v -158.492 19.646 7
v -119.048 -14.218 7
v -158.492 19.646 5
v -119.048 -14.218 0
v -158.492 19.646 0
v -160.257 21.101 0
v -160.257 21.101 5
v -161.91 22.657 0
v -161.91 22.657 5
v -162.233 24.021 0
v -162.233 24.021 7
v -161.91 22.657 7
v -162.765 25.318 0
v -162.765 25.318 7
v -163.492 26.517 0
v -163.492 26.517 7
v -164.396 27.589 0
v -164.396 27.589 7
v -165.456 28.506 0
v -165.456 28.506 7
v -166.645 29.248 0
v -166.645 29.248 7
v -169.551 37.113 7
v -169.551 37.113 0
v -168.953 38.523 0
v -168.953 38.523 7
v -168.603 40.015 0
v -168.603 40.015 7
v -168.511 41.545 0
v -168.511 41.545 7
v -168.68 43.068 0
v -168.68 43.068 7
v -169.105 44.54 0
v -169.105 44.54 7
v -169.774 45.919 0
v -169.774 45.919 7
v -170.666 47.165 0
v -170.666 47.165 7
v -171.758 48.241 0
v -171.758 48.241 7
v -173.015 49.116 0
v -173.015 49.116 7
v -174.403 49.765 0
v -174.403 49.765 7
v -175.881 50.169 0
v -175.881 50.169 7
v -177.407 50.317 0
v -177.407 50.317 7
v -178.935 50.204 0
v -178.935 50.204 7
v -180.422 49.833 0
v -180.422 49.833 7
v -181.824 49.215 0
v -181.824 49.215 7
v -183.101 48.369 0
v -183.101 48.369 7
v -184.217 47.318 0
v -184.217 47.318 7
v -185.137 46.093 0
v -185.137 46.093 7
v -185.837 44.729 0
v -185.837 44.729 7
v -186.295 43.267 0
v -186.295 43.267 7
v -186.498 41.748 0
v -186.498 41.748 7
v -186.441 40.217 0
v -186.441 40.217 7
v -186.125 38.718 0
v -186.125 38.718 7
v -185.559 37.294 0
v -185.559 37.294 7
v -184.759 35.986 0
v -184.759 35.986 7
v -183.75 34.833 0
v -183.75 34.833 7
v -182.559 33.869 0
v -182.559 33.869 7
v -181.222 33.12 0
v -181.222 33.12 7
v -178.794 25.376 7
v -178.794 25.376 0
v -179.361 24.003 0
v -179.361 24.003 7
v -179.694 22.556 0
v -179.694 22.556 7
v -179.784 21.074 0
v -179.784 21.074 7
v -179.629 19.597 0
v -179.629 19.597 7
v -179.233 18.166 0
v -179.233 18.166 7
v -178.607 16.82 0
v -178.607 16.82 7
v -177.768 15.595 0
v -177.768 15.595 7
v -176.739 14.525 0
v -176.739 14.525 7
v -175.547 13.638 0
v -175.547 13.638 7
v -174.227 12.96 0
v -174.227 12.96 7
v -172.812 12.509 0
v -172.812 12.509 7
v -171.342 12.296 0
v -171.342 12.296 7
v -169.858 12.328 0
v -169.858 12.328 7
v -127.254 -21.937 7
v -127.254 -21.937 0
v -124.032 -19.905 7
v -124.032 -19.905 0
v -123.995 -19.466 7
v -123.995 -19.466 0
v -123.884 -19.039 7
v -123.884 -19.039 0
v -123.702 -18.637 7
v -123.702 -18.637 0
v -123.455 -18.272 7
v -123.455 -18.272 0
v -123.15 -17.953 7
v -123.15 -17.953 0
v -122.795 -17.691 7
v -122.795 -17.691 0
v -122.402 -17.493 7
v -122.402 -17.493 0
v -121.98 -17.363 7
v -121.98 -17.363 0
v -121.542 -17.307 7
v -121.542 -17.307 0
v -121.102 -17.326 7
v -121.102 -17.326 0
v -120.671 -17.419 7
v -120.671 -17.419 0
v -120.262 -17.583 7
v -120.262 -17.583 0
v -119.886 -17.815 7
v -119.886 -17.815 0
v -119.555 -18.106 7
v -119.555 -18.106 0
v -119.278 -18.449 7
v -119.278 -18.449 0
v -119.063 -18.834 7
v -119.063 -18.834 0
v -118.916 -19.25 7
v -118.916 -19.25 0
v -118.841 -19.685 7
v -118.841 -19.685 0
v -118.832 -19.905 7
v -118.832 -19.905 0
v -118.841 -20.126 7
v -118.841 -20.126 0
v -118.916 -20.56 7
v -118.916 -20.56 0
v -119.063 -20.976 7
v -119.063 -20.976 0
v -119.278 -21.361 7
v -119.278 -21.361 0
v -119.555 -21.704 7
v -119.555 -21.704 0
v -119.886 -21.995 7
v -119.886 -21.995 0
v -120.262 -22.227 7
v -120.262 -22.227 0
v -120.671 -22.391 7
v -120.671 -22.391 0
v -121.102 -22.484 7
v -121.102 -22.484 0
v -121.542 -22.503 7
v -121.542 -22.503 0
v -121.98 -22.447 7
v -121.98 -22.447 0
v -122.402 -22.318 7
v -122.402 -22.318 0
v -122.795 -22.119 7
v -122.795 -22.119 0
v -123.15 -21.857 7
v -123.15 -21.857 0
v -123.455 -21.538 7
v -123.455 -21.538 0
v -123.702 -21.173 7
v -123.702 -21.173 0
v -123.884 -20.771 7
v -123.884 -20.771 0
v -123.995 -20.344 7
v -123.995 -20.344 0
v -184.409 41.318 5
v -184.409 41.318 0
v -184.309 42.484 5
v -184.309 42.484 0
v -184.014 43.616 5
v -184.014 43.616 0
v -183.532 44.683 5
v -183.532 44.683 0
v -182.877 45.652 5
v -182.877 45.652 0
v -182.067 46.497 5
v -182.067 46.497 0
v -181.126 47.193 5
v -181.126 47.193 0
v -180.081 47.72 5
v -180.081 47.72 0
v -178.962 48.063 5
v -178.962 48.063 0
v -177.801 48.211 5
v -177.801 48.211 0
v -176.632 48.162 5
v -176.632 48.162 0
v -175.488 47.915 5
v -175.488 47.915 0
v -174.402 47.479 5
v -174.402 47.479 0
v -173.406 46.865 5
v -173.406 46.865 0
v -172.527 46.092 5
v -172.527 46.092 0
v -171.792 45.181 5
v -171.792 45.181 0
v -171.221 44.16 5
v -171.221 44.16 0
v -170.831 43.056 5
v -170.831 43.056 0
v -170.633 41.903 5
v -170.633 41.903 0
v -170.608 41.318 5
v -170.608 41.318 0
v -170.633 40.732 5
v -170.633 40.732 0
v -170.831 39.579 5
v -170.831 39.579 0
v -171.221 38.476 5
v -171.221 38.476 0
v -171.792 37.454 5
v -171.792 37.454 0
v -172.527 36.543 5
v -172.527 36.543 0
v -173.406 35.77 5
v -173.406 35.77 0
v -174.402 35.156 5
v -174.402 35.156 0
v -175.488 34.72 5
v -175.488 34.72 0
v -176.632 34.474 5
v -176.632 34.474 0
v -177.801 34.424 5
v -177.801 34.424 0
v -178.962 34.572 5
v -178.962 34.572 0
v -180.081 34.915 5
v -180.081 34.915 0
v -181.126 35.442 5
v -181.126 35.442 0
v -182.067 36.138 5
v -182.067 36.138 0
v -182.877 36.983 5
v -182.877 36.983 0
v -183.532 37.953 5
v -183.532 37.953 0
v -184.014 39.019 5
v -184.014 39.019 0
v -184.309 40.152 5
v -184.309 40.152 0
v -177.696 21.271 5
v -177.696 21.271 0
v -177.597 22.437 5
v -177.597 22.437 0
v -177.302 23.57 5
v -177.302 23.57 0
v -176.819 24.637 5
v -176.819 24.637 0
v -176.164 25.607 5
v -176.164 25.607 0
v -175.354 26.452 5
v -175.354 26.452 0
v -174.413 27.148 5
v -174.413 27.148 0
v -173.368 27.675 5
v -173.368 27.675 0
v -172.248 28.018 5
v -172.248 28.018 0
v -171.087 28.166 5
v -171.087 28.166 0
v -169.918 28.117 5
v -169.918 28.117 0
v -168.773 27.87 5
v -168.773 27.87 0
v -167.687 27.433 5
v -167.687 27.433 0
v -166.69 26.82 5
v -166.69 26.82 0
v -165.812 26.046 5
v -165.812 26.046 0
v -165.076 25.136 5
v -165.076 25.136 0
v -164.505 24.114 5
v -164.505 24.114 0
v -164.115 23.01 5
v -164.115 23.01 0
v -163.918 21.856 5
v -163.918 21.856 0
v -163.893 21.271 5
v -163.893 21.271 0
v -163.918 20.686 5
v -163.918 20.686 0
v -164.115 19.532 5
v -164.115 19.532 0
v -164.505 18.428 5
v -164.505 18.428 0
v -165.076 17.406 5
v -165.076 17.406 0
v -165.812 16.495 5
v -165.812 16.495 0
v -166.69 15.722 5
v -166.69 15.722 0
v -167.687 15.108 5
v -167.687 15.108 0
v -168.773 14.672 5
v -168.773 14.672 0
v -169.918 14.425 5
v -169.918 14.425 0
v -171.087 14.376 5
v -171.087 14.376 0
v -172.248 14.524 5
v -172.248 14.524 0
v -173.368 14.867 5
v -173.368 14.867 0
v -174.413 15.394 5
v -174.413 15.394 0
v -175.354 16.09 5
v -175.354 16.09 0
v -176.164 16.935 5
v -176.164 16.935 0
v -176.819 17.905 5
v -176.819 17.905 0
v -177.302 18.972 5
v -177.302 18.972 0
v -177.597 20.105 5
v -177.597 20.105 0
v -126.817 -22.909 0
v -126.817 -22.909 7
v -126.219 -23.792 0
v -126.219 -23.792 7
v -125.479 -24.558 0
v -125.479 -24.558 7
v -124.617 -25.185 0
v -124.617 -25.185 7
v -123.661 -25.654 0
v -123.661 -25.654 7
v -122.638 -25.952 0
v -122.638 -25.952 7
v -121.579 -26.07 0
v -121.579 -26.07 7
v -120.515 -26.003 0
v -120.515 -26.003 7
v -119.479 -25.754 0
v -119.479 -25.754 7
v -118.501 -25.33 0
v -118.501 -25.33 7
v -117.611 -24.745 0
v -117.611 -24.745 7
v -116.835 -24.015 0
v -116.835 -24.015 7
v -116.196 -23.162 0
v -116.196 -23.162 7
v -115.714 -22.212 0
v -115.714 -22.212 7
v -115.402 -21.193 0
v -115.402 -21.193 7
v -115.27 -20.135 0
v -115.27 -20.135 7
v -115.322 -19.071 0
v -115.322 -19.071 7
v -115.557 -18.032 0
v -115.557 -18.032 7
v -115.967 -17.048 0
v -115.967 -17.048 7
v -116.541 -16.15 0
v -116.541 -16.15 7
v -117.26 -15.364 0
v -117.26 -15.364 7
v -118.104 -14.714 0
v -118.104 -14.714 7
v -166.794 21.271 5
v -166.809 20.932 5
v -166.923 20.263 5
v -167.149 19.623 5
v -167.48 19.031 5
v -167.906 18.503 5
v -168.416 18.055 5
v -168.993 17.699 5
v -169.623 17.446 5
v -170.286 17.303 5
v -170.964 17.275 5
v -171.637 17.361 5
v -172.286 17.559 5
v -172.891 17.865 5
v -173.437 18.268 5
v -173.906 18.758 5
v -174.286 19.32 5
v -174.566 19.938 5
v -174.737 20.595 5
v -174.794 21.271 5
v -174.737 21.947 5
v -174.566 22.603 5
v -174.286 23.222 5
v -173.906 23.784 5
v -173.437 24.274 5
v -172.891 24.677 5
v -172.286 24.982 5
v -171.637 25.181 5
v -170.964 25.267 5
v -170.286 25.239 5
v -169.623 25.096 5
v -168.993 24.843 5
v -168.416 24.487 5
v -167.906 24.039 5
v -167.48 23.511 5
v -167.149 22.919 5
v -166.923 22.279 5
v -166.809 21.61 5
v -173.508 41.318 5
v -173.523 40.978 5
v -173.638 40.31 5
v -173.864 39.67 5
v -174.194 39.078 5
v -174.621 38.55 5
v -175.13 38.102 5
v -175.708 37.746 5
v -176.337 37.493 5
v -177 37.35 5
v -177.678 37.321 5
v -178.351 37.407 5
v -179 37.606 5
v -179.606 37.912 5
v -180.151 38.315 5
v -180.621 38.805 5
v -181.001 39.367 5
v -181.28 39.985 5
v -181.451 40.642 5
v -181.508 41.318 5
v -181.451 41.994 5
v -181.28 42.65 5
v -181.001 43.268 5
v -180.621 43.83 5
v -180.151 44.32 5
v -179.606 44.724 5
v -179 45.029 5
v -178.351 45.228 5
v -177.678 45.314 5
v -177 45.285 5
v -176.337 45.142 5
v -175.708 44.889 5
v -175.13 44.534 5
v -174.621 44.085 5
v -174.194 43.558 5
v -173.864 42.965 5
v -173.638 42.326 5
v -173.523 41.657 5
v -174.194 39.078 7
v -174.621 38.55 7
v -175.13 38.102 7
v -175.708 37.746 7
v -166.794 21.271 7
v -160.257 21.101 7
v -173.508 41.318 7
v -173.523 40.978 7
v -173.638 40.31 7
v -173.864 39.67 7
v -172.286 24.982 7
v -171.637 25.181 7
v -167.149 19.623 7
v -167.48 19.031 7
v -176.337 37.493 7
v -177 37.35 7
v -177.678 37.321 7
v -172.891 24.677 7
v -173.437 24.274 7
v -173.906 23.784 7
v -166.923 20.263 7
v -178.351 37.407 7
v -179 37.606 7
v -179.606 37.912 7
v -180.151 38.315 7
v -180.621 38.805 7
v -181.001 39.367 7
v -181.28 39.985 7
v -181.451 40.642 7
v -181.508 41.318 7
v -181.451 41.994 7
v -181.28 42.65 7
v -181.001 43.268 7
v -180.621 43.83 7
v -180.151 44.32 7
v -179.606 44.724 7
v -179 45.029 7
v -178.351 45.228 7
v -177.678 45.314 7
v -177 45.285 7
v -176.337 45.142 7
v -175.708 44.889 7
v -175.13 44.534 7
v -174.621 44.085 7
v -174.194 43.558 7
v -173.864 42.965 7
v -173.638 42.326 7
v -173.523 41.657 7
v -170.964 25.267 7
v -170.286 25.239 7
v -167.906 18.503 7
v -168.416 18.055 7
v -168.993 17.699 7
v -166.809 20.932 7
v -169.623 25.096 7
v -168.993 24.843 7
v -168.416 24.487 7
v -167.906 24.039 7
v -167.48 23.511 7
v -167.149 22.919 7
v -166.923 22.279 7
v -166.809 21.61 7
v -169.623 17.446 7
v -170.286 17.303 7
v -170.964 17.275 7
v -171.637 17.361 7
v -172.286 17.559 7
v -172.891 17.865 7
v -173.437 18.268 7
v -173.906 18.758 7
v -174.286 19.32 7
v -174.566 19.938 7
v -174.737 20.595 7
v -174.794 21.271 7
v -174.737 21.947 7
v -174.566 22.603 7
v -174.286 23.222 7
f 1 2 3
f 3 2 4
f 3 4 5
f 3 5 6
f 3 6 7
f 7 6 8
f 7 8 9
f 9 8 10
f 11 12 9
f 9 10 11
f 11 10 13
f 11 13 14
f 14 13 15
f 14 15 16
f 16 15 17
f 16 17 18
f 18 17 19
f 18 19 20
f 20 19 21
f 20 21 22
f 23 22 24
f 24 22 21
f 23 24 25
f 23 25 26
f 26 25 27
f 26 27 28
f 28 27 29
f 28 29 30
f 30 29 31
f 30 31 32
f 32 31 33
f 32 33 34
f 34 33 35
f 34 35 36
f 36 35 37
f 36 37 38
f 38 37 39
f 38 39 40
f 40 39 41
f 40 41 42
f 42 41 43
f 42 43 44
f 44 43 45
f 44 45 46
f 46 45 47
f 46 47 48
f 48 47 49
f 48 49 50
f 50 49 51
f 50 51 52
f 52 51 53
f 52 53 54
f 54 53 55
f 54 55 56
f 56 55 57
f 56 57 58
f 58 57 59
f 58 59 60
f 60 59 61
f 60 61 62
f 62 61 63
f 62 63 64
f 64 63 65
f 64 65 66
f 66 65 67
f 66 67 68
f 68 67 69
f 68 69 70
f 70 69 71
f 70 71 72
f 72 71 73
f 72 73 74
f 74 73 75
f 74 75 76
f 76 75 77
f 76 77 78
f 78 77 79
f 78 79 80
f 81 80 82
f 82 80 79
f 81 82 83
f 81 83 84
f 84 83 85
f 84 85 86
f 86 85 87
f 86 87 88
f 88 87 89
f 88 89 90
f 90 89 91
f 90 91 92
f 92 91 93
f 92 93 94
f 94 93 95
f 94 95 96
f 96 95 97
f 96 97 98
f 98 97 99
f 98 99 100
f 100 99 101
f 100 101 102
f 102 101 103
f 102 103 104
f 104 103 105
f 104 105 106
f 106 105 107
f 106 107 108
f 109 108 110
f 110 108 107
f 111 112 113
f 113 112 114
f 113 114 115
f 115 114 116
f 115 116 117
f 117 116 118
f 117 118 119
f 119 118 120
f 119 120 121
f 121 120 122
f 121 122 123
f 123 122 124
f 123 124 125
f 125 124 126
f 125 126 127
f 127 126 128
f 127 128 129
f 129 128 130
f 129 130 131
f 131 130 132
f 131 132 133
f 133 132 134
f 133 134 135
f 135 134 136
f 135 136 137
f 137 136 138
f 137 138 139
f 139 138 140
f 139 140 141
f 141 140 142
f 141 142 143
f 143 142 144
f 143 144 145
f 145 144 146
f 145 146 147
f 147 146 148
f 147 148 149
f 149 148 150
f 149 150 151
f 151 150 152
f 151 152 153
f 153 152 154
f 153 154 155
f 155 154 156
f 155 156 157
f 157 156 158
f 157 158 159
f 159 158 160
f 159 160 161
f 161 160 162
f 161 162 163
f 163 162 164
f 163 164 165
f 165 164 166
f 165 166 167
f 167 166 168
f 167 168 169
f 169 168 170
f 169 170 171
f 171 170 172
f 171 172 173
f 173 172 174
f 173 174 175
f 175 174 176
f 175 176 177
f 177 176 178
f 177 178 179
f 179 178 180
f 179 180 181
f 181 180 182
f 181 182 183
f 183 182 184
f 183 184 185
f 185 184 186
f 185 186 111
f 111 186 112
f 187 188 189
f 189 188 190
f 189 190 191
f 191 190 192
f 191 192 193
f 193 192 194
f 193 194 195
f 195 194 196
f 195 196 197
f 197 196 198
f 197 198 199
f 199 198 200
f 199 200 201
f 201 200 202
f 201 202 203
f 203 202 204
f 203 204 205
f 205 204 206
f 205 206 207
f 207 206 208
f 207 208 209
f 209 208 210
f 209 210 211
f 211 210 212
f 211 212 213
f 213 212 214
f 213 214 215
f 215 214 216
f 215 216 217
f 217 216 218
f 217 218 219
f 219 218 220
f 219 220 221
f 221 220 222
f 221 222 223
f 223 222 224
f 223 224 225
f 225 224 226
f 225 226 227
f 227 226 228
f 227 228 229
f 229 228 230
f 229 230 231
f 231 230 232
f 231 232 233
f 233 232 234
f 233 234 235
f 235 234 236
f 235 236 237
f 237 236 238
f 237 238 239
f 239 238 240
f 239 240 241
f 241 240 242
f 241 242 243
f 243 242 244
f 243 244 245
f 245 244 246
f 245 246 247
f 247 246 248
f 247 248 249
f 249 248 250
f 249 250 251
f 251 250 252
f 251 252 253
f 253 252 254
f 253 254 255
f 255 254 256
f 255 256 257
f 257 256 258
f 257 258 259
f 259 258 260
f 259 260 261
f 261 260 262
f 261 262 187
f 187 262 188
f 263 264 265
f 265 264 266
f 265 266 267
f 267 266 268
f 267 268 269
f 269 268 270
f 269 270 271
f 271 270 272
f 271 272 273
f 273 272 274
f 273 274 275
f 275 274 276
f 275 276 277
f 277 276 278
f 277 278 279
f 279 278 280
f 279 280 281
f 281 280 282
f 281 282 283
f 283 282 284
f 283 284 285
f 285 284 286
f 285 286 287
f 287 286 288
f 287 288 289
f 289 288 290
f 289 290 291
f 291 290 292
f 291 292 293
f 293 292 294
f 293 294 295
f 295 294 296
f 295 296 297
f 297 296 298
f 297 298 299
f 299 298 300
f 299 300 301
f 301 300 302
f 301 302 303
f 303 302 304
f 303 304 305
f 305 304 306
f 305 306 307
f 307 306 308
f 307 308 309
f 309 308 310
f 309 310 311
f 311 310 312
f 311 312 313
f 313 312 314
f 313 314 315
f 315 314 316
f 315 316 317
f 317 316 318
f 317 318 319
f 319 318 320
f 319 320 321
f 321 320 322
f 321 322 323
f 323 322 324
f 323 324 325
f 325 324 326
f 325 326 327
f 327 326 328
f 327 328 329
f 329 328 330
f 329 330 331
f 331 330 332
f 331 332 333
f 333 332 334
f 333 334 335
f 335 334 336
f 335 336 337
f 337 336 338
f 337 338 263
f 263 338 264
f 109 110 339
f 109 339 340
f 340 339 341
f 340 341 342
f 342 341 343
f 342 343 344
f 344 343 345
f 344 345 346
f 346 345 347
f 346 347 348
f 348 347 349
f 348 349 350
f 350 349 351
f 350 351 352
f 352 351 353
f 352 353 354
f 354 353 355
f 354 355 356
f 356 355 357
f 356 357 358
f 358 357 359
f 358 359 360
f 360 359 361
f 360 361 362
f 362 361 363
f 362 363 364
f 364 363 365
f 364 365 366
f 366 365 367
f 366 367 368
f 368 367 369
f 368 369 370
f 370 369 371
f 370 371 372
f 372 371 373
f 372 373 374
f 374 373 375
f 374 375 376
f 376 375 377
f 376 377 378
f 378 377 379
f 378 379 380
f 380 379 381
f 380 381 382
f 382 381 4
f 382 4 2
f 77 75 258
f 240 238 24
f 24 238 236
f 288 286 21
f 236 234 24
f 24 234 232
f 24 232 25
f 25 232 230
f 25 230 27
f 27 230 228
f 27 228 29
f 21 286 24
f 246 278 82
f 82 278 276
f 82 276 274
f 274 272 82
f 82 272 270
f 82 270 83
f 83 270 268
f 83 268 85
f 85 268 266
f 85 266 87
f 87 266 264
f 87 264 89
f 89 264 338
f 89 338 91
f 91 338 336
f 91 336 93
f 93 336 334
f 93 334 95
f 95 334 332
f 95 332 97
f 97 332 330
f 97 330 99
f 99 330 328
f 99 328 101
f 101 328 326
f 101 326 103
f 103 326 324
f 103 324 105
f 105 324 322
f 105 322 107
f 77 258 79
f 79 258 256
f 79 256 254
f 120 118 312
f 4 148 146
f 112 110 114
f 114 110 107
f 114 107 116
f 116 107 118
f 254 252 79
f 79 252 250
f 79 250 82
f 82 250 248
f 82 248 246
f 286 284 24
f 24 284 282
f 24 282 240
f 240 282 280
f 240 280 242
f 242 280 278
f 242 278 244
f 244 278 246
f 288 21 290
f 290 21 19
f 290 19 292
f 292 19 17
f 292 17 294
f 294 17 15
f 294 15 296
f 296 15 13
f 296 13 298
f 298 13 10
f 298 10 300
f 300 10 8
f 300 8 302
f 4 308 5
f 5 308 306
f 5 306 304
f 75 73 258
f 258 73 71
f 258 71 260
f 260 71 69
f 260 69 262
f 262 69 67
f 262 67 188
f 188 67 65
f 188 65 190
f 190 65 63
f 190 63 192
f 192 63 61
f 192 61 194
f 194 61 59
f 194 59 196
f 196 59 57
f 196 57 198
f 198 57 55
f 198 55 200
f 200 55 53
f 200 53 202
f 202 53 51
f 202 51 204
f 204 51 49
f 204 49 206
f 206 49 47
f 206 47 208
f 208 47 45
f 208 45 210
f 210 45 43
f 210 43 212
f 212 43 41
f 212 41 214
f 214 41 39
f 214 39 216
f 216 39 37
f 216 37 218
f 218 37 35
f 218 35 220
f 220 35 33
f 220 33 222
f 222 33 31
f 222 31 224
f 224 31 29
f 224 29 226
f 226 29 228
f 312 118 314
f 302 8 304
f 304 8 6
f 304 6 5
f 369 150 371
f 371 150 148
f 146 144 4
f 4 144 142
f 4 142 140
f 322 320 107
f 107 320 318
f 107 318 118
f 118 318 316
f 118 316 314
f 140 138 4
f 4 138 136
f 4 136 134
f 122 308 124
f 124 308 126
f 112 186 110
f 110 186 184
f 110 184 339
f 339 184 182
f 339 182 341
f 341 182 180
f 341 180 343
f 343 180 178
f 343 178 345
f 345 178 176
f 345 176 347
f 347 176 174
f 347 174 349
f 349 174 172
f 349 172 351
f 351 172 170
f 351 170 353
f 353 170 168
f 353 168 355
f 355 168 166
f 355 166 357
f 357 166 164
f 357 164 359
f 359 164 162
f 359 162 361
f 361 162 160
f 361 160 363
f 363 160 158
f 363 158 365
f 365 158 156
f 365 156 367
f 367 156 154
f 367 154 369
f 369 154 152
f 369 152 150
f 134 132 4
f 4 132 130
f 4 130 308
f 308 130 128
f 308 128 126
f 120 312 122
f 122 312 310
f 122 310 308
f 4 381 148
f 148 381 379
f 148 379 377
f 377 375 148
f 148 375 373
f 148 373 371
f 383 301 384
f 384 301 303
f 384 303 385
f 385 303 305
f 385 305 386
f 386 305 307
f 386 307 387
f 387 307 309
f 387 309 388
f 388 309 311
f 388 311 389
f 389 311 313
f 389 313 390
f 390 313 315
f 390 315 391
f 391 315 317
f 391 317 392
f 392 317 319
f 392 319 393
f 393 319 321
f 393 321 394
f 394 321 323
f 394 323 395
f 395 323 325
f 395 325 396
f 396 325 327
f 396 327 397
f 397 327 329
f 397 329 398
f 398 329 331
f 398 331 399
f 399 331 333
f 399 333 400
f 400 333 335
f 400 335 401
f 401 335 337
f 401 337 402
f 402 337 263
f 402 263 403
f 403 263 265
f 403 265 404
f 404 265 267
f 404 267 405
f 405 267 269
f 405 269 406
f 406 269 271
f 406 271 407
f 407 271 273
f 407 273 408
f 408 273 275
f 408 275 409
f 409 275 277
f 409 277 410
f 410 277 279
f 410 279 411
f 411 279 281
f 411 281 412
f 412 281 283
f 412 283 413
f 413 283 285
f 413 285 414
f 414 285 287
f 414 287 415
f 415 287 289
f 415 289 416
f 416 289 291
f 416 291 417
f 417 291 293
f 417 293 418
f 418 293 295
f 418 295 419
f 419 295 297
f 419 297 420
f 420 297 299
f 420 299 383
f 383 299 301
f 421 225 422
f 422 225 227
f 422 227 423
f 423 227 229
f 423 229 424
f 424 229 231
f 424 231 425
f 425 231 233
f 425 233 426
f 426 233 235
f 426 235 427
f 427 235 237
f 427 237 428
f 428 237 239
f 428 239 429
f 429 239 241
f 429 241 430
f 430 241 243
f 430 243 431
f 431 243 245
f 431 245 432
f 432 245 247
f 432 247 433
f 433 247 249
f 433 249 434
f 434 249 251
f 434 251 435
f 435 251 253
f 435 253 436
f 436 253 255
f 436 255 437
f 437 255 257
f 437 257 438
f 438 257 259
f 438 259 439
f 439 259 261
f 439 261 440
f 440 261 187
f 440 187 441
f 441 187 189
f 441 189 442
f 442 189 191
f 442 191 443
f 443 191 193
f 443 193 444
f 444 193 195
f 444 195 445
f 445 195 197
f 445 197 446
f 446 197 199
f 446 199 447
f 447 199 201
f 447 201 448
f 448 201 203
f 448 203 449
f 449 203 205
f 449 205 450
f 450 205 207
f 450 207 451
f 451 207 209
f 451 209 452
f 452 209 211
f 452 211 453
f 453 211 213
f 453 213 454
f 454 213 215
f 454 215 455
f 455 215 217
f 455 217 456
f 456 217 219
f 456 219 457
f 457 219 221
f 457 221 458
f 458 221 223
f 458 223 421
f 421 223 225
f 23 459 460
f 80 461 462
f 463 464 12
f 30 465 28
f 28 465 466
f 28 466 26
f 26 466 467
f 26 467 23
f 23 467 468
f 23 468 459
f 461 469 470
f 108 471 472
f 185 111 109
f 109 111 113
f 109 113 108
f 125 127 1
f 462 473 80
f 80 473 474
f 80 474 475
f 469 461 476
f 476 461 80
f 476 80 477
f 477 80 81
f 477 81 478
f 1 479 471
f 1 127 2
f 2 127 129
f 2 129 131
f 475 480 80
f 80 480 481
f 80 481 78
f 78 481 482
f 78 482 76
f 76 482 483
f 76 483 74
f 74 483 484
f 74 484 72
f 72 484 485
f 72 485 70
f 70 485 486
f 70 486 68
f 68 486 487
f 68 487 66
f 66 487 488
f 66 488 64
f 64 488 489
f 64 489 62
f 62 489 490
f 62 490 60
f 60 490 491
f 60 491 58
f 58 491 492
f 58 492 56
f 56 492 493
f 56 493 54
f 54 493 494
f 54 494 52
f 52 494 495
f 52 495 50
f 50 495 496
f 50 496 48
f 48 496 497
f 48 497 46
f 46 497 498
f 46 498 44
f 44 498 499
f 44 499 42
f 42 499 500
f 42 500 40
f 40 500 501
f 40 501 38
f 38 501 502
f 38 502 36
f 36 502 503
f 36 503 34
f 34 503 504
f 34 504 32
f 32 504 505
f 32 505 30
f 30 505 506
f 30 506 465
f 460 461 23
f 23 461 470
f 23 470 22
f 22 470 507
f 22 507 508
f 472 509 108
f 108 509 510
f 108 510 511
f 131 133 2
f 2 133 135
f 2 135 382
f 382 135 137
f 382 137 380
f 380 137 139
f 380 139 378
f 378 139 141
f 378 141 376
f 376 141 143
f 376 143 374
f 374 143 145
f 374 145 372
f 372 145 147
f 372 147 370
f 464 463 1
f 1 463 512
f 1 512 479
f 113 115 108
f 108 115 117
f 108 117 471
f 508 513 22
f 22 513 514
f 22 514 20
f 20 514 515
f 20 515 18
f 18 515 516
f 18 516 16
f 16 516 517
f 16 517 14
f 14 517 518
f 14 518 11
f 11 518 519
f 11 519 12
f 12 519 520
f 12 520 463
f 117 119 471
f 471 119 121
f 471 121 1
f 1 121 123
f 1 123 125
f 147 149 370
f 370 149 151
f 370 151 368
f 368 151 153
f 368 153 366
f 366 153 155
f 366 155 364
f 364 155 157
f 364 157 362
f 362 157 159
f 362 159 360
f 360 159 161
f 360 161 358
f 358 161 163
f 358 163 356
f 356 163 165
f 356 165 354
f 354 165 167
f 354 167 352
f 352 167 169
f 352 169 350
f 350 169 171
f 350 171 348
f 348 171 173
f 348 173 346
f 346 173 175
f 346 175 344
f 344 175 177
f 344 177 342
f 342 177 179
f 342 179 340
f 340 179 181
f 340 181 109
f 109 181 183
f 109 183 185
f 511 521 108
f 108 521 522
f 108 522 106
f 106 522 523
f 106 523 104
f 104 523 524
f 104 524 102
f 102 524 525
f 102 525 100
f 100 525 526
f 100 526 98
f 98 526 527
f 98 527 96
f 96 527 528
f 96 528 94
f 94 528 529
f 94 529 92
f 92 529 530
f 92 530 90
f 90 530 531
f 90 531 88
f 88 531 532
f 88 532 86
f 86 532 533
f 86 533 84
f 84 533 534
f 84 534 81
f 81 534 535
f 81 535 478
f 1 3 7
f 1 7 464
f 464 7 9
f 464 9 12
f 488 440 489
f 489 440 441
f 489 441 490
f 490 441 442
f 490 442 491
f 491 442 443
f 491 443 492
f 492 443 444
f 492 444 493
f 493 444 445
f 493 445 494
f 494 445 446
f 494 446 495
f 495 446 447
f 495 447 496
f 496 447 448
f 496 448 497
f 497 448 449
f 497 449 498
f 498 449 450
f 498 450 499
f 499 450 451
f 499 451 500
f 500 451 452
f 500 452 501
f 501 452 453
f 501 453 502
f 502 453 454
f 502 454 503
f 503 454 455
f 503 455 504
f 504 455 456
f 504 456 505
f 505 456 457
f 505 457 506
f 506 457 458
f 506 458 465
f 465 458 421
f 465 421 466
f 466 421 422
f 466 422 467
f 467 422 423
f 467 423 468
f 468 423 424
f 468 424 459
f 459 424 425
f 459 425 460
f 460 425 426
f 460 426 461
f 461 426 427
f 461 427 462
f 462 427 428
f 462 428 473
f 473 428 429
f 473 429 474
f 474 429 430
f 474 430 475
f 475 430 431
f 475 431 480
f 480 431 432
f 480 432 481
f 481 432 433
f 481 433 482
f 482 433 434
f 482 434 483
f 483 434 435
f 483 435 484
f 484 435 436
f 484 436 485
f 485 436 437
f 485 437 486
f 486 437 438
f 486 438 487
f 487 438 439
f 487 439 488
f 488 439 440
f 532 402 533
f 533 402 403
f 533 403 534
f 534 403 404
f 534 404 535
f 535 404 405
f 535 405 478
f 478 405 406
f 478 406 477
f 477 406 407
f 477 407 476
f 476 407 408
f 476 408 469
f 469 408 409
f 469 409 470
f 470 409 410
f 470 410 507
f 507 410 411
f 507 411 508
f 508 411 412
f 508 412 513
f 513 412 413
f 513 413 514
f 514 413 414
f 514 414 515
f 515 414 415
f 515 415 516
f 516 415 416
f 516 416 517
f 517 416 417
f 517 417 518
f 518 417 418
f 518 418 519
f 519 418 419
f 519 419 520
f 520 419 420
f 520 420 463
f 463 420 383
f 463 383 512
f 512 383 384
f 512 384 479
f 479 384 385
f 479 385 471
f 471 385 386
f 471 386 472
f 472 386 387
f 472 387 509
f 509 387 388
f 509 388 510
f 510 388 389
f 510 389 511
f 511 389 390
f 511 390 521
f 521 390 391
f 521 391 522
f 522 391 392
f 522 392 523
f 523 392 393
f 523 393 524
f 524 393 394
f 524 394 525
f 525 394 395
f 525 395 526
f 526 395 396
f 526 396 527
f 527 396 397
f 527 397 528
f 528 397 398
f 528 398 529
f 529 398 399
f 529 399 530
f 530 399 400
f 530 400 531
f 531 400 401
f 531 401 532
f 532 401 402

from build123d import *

# Parameters (mm, degrees)
SKETCH1_R           = 6.901519969
SKETCH1_R_2         = 6.9
SKETCH1_R_3         = 2.6
BOSS_EXTRUDE1_DEPTH = 5
SKETCH2_R           = 4
SKETCH2_R_2         = 2.6
BOSS_EXTRUDE2_DEPTH = 2


with BuildPart() as part:
    # Sketch1 → Boss-Extrude1 (new body)
    with BuildSketch(Plane.XY):
        with BuildLine():
            Line((-119.047770685, -14.21840763), (-158.491736924, 19.646141241))
            add(Edge.make_bspline(
                [(-158.491736924, 19.646141241), (-160.313597407, 21.050397122), (-161.909962094, 22.656519407)],
                knots=[0, 0, 0, 1, 1, 1], degree=2))
            ThreePointArc((-161.909962094, 22.656519407), (-163.491640093, 26.517106064), (-166.64545249, 29.248278339))
            Line((-166.64545249, 29.248278339), (-169.551288031, 37.112526103))
            ThreePointArc((-169.551288031, 37.112526103), (-180.421756419, 49.833075564), (-181.222431589, 33.119656379))
            Line((-181.222431589, 33.119656379), (-178.794316039, 25.37582765))
            ThreePointArc((-178.794316039, 25.37582765), (-178.212831269, 16.189990788), (-169.857983808, 12.328093938))
            Line((-169.857983808, 12.328093938), (-127.253789064, -21.937441374))
            ThreePointArc((-127.253789064, -21.937441374), (-117.207191003, -24.396487309), (-119.047770685, -14.21840763))
        make_face()
        with Locations((-170.794274728, 21.270925714)):
            Circle(SKETCH1_R, mode=Mode.SUBTRACT)
        with Locations((-177.508495403, 41.317624299)):
            Circle(SKETCH1_R_2, mode=Mode.SUBTRACT)
        with Locations((-121.432089481, -19.905045023)):
            Circle(SKETCH1_R_3, mode=Mode.SUBTRACT)
    extrude(amount=BOSS_EXTRUDE1_DEPTH)

    # Sketch2 → Boss-Extrude2 (add)
    with BuildSketch(Plane.XY.offset(5)):
        with BuildLine():
            Line((-119.047770685, -14.21840763), (-158.491736924, 19.646141241))
            add(Edge.make_bspline(
                [(-158.491736924, 19.646141241), (-160.313597387, 21.050397106), (-161.909962058, 22.656519371)],
                knots=[0, 0, 0, 1, 1, 1], degree=2))
            ThreePointArc((-161.909962058, 22.656519371), (-163.491640057, 26.517106064), (-166.64545249, 29.248278339))
            Line((-166.64545249, 29.248278339), (-169.551288031, 37.112526103))
            ThreePointArc((-169.551288031, 37.112526103), (-180.421756419, 49.833075564), (-181.222431589, 33.119656379))
            Line((-181.222431589, 33.119656379), (-178.794316039, 25.37582765))
            ThreePointArc((-178.794316039, 25.37582765), (-178.212831269, 16.189990788), (-169.857983808, 12.328093938))
            Line((-169.857983808, 12.328093938), (-127.253789064, -21.937441374))
            ThreePointArc((-127.253789064, -21.937441374), (-117.207191003, -24.396487309), (-119.047770685, -14.21840763))
        make_face()
        with Locations((-177.508495403, 41.317624299)):
            Circle(SKETCH2_R, mode=Mode.SUBTRACT)
        with Locations((-170.794274728, 21.270925714)):
            Circle(SKETCH2_R, mode=Mode.SUBTRACT)
        with Locations((-121.432089481, -19.905045023)):
            Circle(SKETCH2_R_2, mode=Mode.SUBTRACT)
    extrude(amount=BOSS_EXTRUDE2_DEPTH)


solid = part.part
